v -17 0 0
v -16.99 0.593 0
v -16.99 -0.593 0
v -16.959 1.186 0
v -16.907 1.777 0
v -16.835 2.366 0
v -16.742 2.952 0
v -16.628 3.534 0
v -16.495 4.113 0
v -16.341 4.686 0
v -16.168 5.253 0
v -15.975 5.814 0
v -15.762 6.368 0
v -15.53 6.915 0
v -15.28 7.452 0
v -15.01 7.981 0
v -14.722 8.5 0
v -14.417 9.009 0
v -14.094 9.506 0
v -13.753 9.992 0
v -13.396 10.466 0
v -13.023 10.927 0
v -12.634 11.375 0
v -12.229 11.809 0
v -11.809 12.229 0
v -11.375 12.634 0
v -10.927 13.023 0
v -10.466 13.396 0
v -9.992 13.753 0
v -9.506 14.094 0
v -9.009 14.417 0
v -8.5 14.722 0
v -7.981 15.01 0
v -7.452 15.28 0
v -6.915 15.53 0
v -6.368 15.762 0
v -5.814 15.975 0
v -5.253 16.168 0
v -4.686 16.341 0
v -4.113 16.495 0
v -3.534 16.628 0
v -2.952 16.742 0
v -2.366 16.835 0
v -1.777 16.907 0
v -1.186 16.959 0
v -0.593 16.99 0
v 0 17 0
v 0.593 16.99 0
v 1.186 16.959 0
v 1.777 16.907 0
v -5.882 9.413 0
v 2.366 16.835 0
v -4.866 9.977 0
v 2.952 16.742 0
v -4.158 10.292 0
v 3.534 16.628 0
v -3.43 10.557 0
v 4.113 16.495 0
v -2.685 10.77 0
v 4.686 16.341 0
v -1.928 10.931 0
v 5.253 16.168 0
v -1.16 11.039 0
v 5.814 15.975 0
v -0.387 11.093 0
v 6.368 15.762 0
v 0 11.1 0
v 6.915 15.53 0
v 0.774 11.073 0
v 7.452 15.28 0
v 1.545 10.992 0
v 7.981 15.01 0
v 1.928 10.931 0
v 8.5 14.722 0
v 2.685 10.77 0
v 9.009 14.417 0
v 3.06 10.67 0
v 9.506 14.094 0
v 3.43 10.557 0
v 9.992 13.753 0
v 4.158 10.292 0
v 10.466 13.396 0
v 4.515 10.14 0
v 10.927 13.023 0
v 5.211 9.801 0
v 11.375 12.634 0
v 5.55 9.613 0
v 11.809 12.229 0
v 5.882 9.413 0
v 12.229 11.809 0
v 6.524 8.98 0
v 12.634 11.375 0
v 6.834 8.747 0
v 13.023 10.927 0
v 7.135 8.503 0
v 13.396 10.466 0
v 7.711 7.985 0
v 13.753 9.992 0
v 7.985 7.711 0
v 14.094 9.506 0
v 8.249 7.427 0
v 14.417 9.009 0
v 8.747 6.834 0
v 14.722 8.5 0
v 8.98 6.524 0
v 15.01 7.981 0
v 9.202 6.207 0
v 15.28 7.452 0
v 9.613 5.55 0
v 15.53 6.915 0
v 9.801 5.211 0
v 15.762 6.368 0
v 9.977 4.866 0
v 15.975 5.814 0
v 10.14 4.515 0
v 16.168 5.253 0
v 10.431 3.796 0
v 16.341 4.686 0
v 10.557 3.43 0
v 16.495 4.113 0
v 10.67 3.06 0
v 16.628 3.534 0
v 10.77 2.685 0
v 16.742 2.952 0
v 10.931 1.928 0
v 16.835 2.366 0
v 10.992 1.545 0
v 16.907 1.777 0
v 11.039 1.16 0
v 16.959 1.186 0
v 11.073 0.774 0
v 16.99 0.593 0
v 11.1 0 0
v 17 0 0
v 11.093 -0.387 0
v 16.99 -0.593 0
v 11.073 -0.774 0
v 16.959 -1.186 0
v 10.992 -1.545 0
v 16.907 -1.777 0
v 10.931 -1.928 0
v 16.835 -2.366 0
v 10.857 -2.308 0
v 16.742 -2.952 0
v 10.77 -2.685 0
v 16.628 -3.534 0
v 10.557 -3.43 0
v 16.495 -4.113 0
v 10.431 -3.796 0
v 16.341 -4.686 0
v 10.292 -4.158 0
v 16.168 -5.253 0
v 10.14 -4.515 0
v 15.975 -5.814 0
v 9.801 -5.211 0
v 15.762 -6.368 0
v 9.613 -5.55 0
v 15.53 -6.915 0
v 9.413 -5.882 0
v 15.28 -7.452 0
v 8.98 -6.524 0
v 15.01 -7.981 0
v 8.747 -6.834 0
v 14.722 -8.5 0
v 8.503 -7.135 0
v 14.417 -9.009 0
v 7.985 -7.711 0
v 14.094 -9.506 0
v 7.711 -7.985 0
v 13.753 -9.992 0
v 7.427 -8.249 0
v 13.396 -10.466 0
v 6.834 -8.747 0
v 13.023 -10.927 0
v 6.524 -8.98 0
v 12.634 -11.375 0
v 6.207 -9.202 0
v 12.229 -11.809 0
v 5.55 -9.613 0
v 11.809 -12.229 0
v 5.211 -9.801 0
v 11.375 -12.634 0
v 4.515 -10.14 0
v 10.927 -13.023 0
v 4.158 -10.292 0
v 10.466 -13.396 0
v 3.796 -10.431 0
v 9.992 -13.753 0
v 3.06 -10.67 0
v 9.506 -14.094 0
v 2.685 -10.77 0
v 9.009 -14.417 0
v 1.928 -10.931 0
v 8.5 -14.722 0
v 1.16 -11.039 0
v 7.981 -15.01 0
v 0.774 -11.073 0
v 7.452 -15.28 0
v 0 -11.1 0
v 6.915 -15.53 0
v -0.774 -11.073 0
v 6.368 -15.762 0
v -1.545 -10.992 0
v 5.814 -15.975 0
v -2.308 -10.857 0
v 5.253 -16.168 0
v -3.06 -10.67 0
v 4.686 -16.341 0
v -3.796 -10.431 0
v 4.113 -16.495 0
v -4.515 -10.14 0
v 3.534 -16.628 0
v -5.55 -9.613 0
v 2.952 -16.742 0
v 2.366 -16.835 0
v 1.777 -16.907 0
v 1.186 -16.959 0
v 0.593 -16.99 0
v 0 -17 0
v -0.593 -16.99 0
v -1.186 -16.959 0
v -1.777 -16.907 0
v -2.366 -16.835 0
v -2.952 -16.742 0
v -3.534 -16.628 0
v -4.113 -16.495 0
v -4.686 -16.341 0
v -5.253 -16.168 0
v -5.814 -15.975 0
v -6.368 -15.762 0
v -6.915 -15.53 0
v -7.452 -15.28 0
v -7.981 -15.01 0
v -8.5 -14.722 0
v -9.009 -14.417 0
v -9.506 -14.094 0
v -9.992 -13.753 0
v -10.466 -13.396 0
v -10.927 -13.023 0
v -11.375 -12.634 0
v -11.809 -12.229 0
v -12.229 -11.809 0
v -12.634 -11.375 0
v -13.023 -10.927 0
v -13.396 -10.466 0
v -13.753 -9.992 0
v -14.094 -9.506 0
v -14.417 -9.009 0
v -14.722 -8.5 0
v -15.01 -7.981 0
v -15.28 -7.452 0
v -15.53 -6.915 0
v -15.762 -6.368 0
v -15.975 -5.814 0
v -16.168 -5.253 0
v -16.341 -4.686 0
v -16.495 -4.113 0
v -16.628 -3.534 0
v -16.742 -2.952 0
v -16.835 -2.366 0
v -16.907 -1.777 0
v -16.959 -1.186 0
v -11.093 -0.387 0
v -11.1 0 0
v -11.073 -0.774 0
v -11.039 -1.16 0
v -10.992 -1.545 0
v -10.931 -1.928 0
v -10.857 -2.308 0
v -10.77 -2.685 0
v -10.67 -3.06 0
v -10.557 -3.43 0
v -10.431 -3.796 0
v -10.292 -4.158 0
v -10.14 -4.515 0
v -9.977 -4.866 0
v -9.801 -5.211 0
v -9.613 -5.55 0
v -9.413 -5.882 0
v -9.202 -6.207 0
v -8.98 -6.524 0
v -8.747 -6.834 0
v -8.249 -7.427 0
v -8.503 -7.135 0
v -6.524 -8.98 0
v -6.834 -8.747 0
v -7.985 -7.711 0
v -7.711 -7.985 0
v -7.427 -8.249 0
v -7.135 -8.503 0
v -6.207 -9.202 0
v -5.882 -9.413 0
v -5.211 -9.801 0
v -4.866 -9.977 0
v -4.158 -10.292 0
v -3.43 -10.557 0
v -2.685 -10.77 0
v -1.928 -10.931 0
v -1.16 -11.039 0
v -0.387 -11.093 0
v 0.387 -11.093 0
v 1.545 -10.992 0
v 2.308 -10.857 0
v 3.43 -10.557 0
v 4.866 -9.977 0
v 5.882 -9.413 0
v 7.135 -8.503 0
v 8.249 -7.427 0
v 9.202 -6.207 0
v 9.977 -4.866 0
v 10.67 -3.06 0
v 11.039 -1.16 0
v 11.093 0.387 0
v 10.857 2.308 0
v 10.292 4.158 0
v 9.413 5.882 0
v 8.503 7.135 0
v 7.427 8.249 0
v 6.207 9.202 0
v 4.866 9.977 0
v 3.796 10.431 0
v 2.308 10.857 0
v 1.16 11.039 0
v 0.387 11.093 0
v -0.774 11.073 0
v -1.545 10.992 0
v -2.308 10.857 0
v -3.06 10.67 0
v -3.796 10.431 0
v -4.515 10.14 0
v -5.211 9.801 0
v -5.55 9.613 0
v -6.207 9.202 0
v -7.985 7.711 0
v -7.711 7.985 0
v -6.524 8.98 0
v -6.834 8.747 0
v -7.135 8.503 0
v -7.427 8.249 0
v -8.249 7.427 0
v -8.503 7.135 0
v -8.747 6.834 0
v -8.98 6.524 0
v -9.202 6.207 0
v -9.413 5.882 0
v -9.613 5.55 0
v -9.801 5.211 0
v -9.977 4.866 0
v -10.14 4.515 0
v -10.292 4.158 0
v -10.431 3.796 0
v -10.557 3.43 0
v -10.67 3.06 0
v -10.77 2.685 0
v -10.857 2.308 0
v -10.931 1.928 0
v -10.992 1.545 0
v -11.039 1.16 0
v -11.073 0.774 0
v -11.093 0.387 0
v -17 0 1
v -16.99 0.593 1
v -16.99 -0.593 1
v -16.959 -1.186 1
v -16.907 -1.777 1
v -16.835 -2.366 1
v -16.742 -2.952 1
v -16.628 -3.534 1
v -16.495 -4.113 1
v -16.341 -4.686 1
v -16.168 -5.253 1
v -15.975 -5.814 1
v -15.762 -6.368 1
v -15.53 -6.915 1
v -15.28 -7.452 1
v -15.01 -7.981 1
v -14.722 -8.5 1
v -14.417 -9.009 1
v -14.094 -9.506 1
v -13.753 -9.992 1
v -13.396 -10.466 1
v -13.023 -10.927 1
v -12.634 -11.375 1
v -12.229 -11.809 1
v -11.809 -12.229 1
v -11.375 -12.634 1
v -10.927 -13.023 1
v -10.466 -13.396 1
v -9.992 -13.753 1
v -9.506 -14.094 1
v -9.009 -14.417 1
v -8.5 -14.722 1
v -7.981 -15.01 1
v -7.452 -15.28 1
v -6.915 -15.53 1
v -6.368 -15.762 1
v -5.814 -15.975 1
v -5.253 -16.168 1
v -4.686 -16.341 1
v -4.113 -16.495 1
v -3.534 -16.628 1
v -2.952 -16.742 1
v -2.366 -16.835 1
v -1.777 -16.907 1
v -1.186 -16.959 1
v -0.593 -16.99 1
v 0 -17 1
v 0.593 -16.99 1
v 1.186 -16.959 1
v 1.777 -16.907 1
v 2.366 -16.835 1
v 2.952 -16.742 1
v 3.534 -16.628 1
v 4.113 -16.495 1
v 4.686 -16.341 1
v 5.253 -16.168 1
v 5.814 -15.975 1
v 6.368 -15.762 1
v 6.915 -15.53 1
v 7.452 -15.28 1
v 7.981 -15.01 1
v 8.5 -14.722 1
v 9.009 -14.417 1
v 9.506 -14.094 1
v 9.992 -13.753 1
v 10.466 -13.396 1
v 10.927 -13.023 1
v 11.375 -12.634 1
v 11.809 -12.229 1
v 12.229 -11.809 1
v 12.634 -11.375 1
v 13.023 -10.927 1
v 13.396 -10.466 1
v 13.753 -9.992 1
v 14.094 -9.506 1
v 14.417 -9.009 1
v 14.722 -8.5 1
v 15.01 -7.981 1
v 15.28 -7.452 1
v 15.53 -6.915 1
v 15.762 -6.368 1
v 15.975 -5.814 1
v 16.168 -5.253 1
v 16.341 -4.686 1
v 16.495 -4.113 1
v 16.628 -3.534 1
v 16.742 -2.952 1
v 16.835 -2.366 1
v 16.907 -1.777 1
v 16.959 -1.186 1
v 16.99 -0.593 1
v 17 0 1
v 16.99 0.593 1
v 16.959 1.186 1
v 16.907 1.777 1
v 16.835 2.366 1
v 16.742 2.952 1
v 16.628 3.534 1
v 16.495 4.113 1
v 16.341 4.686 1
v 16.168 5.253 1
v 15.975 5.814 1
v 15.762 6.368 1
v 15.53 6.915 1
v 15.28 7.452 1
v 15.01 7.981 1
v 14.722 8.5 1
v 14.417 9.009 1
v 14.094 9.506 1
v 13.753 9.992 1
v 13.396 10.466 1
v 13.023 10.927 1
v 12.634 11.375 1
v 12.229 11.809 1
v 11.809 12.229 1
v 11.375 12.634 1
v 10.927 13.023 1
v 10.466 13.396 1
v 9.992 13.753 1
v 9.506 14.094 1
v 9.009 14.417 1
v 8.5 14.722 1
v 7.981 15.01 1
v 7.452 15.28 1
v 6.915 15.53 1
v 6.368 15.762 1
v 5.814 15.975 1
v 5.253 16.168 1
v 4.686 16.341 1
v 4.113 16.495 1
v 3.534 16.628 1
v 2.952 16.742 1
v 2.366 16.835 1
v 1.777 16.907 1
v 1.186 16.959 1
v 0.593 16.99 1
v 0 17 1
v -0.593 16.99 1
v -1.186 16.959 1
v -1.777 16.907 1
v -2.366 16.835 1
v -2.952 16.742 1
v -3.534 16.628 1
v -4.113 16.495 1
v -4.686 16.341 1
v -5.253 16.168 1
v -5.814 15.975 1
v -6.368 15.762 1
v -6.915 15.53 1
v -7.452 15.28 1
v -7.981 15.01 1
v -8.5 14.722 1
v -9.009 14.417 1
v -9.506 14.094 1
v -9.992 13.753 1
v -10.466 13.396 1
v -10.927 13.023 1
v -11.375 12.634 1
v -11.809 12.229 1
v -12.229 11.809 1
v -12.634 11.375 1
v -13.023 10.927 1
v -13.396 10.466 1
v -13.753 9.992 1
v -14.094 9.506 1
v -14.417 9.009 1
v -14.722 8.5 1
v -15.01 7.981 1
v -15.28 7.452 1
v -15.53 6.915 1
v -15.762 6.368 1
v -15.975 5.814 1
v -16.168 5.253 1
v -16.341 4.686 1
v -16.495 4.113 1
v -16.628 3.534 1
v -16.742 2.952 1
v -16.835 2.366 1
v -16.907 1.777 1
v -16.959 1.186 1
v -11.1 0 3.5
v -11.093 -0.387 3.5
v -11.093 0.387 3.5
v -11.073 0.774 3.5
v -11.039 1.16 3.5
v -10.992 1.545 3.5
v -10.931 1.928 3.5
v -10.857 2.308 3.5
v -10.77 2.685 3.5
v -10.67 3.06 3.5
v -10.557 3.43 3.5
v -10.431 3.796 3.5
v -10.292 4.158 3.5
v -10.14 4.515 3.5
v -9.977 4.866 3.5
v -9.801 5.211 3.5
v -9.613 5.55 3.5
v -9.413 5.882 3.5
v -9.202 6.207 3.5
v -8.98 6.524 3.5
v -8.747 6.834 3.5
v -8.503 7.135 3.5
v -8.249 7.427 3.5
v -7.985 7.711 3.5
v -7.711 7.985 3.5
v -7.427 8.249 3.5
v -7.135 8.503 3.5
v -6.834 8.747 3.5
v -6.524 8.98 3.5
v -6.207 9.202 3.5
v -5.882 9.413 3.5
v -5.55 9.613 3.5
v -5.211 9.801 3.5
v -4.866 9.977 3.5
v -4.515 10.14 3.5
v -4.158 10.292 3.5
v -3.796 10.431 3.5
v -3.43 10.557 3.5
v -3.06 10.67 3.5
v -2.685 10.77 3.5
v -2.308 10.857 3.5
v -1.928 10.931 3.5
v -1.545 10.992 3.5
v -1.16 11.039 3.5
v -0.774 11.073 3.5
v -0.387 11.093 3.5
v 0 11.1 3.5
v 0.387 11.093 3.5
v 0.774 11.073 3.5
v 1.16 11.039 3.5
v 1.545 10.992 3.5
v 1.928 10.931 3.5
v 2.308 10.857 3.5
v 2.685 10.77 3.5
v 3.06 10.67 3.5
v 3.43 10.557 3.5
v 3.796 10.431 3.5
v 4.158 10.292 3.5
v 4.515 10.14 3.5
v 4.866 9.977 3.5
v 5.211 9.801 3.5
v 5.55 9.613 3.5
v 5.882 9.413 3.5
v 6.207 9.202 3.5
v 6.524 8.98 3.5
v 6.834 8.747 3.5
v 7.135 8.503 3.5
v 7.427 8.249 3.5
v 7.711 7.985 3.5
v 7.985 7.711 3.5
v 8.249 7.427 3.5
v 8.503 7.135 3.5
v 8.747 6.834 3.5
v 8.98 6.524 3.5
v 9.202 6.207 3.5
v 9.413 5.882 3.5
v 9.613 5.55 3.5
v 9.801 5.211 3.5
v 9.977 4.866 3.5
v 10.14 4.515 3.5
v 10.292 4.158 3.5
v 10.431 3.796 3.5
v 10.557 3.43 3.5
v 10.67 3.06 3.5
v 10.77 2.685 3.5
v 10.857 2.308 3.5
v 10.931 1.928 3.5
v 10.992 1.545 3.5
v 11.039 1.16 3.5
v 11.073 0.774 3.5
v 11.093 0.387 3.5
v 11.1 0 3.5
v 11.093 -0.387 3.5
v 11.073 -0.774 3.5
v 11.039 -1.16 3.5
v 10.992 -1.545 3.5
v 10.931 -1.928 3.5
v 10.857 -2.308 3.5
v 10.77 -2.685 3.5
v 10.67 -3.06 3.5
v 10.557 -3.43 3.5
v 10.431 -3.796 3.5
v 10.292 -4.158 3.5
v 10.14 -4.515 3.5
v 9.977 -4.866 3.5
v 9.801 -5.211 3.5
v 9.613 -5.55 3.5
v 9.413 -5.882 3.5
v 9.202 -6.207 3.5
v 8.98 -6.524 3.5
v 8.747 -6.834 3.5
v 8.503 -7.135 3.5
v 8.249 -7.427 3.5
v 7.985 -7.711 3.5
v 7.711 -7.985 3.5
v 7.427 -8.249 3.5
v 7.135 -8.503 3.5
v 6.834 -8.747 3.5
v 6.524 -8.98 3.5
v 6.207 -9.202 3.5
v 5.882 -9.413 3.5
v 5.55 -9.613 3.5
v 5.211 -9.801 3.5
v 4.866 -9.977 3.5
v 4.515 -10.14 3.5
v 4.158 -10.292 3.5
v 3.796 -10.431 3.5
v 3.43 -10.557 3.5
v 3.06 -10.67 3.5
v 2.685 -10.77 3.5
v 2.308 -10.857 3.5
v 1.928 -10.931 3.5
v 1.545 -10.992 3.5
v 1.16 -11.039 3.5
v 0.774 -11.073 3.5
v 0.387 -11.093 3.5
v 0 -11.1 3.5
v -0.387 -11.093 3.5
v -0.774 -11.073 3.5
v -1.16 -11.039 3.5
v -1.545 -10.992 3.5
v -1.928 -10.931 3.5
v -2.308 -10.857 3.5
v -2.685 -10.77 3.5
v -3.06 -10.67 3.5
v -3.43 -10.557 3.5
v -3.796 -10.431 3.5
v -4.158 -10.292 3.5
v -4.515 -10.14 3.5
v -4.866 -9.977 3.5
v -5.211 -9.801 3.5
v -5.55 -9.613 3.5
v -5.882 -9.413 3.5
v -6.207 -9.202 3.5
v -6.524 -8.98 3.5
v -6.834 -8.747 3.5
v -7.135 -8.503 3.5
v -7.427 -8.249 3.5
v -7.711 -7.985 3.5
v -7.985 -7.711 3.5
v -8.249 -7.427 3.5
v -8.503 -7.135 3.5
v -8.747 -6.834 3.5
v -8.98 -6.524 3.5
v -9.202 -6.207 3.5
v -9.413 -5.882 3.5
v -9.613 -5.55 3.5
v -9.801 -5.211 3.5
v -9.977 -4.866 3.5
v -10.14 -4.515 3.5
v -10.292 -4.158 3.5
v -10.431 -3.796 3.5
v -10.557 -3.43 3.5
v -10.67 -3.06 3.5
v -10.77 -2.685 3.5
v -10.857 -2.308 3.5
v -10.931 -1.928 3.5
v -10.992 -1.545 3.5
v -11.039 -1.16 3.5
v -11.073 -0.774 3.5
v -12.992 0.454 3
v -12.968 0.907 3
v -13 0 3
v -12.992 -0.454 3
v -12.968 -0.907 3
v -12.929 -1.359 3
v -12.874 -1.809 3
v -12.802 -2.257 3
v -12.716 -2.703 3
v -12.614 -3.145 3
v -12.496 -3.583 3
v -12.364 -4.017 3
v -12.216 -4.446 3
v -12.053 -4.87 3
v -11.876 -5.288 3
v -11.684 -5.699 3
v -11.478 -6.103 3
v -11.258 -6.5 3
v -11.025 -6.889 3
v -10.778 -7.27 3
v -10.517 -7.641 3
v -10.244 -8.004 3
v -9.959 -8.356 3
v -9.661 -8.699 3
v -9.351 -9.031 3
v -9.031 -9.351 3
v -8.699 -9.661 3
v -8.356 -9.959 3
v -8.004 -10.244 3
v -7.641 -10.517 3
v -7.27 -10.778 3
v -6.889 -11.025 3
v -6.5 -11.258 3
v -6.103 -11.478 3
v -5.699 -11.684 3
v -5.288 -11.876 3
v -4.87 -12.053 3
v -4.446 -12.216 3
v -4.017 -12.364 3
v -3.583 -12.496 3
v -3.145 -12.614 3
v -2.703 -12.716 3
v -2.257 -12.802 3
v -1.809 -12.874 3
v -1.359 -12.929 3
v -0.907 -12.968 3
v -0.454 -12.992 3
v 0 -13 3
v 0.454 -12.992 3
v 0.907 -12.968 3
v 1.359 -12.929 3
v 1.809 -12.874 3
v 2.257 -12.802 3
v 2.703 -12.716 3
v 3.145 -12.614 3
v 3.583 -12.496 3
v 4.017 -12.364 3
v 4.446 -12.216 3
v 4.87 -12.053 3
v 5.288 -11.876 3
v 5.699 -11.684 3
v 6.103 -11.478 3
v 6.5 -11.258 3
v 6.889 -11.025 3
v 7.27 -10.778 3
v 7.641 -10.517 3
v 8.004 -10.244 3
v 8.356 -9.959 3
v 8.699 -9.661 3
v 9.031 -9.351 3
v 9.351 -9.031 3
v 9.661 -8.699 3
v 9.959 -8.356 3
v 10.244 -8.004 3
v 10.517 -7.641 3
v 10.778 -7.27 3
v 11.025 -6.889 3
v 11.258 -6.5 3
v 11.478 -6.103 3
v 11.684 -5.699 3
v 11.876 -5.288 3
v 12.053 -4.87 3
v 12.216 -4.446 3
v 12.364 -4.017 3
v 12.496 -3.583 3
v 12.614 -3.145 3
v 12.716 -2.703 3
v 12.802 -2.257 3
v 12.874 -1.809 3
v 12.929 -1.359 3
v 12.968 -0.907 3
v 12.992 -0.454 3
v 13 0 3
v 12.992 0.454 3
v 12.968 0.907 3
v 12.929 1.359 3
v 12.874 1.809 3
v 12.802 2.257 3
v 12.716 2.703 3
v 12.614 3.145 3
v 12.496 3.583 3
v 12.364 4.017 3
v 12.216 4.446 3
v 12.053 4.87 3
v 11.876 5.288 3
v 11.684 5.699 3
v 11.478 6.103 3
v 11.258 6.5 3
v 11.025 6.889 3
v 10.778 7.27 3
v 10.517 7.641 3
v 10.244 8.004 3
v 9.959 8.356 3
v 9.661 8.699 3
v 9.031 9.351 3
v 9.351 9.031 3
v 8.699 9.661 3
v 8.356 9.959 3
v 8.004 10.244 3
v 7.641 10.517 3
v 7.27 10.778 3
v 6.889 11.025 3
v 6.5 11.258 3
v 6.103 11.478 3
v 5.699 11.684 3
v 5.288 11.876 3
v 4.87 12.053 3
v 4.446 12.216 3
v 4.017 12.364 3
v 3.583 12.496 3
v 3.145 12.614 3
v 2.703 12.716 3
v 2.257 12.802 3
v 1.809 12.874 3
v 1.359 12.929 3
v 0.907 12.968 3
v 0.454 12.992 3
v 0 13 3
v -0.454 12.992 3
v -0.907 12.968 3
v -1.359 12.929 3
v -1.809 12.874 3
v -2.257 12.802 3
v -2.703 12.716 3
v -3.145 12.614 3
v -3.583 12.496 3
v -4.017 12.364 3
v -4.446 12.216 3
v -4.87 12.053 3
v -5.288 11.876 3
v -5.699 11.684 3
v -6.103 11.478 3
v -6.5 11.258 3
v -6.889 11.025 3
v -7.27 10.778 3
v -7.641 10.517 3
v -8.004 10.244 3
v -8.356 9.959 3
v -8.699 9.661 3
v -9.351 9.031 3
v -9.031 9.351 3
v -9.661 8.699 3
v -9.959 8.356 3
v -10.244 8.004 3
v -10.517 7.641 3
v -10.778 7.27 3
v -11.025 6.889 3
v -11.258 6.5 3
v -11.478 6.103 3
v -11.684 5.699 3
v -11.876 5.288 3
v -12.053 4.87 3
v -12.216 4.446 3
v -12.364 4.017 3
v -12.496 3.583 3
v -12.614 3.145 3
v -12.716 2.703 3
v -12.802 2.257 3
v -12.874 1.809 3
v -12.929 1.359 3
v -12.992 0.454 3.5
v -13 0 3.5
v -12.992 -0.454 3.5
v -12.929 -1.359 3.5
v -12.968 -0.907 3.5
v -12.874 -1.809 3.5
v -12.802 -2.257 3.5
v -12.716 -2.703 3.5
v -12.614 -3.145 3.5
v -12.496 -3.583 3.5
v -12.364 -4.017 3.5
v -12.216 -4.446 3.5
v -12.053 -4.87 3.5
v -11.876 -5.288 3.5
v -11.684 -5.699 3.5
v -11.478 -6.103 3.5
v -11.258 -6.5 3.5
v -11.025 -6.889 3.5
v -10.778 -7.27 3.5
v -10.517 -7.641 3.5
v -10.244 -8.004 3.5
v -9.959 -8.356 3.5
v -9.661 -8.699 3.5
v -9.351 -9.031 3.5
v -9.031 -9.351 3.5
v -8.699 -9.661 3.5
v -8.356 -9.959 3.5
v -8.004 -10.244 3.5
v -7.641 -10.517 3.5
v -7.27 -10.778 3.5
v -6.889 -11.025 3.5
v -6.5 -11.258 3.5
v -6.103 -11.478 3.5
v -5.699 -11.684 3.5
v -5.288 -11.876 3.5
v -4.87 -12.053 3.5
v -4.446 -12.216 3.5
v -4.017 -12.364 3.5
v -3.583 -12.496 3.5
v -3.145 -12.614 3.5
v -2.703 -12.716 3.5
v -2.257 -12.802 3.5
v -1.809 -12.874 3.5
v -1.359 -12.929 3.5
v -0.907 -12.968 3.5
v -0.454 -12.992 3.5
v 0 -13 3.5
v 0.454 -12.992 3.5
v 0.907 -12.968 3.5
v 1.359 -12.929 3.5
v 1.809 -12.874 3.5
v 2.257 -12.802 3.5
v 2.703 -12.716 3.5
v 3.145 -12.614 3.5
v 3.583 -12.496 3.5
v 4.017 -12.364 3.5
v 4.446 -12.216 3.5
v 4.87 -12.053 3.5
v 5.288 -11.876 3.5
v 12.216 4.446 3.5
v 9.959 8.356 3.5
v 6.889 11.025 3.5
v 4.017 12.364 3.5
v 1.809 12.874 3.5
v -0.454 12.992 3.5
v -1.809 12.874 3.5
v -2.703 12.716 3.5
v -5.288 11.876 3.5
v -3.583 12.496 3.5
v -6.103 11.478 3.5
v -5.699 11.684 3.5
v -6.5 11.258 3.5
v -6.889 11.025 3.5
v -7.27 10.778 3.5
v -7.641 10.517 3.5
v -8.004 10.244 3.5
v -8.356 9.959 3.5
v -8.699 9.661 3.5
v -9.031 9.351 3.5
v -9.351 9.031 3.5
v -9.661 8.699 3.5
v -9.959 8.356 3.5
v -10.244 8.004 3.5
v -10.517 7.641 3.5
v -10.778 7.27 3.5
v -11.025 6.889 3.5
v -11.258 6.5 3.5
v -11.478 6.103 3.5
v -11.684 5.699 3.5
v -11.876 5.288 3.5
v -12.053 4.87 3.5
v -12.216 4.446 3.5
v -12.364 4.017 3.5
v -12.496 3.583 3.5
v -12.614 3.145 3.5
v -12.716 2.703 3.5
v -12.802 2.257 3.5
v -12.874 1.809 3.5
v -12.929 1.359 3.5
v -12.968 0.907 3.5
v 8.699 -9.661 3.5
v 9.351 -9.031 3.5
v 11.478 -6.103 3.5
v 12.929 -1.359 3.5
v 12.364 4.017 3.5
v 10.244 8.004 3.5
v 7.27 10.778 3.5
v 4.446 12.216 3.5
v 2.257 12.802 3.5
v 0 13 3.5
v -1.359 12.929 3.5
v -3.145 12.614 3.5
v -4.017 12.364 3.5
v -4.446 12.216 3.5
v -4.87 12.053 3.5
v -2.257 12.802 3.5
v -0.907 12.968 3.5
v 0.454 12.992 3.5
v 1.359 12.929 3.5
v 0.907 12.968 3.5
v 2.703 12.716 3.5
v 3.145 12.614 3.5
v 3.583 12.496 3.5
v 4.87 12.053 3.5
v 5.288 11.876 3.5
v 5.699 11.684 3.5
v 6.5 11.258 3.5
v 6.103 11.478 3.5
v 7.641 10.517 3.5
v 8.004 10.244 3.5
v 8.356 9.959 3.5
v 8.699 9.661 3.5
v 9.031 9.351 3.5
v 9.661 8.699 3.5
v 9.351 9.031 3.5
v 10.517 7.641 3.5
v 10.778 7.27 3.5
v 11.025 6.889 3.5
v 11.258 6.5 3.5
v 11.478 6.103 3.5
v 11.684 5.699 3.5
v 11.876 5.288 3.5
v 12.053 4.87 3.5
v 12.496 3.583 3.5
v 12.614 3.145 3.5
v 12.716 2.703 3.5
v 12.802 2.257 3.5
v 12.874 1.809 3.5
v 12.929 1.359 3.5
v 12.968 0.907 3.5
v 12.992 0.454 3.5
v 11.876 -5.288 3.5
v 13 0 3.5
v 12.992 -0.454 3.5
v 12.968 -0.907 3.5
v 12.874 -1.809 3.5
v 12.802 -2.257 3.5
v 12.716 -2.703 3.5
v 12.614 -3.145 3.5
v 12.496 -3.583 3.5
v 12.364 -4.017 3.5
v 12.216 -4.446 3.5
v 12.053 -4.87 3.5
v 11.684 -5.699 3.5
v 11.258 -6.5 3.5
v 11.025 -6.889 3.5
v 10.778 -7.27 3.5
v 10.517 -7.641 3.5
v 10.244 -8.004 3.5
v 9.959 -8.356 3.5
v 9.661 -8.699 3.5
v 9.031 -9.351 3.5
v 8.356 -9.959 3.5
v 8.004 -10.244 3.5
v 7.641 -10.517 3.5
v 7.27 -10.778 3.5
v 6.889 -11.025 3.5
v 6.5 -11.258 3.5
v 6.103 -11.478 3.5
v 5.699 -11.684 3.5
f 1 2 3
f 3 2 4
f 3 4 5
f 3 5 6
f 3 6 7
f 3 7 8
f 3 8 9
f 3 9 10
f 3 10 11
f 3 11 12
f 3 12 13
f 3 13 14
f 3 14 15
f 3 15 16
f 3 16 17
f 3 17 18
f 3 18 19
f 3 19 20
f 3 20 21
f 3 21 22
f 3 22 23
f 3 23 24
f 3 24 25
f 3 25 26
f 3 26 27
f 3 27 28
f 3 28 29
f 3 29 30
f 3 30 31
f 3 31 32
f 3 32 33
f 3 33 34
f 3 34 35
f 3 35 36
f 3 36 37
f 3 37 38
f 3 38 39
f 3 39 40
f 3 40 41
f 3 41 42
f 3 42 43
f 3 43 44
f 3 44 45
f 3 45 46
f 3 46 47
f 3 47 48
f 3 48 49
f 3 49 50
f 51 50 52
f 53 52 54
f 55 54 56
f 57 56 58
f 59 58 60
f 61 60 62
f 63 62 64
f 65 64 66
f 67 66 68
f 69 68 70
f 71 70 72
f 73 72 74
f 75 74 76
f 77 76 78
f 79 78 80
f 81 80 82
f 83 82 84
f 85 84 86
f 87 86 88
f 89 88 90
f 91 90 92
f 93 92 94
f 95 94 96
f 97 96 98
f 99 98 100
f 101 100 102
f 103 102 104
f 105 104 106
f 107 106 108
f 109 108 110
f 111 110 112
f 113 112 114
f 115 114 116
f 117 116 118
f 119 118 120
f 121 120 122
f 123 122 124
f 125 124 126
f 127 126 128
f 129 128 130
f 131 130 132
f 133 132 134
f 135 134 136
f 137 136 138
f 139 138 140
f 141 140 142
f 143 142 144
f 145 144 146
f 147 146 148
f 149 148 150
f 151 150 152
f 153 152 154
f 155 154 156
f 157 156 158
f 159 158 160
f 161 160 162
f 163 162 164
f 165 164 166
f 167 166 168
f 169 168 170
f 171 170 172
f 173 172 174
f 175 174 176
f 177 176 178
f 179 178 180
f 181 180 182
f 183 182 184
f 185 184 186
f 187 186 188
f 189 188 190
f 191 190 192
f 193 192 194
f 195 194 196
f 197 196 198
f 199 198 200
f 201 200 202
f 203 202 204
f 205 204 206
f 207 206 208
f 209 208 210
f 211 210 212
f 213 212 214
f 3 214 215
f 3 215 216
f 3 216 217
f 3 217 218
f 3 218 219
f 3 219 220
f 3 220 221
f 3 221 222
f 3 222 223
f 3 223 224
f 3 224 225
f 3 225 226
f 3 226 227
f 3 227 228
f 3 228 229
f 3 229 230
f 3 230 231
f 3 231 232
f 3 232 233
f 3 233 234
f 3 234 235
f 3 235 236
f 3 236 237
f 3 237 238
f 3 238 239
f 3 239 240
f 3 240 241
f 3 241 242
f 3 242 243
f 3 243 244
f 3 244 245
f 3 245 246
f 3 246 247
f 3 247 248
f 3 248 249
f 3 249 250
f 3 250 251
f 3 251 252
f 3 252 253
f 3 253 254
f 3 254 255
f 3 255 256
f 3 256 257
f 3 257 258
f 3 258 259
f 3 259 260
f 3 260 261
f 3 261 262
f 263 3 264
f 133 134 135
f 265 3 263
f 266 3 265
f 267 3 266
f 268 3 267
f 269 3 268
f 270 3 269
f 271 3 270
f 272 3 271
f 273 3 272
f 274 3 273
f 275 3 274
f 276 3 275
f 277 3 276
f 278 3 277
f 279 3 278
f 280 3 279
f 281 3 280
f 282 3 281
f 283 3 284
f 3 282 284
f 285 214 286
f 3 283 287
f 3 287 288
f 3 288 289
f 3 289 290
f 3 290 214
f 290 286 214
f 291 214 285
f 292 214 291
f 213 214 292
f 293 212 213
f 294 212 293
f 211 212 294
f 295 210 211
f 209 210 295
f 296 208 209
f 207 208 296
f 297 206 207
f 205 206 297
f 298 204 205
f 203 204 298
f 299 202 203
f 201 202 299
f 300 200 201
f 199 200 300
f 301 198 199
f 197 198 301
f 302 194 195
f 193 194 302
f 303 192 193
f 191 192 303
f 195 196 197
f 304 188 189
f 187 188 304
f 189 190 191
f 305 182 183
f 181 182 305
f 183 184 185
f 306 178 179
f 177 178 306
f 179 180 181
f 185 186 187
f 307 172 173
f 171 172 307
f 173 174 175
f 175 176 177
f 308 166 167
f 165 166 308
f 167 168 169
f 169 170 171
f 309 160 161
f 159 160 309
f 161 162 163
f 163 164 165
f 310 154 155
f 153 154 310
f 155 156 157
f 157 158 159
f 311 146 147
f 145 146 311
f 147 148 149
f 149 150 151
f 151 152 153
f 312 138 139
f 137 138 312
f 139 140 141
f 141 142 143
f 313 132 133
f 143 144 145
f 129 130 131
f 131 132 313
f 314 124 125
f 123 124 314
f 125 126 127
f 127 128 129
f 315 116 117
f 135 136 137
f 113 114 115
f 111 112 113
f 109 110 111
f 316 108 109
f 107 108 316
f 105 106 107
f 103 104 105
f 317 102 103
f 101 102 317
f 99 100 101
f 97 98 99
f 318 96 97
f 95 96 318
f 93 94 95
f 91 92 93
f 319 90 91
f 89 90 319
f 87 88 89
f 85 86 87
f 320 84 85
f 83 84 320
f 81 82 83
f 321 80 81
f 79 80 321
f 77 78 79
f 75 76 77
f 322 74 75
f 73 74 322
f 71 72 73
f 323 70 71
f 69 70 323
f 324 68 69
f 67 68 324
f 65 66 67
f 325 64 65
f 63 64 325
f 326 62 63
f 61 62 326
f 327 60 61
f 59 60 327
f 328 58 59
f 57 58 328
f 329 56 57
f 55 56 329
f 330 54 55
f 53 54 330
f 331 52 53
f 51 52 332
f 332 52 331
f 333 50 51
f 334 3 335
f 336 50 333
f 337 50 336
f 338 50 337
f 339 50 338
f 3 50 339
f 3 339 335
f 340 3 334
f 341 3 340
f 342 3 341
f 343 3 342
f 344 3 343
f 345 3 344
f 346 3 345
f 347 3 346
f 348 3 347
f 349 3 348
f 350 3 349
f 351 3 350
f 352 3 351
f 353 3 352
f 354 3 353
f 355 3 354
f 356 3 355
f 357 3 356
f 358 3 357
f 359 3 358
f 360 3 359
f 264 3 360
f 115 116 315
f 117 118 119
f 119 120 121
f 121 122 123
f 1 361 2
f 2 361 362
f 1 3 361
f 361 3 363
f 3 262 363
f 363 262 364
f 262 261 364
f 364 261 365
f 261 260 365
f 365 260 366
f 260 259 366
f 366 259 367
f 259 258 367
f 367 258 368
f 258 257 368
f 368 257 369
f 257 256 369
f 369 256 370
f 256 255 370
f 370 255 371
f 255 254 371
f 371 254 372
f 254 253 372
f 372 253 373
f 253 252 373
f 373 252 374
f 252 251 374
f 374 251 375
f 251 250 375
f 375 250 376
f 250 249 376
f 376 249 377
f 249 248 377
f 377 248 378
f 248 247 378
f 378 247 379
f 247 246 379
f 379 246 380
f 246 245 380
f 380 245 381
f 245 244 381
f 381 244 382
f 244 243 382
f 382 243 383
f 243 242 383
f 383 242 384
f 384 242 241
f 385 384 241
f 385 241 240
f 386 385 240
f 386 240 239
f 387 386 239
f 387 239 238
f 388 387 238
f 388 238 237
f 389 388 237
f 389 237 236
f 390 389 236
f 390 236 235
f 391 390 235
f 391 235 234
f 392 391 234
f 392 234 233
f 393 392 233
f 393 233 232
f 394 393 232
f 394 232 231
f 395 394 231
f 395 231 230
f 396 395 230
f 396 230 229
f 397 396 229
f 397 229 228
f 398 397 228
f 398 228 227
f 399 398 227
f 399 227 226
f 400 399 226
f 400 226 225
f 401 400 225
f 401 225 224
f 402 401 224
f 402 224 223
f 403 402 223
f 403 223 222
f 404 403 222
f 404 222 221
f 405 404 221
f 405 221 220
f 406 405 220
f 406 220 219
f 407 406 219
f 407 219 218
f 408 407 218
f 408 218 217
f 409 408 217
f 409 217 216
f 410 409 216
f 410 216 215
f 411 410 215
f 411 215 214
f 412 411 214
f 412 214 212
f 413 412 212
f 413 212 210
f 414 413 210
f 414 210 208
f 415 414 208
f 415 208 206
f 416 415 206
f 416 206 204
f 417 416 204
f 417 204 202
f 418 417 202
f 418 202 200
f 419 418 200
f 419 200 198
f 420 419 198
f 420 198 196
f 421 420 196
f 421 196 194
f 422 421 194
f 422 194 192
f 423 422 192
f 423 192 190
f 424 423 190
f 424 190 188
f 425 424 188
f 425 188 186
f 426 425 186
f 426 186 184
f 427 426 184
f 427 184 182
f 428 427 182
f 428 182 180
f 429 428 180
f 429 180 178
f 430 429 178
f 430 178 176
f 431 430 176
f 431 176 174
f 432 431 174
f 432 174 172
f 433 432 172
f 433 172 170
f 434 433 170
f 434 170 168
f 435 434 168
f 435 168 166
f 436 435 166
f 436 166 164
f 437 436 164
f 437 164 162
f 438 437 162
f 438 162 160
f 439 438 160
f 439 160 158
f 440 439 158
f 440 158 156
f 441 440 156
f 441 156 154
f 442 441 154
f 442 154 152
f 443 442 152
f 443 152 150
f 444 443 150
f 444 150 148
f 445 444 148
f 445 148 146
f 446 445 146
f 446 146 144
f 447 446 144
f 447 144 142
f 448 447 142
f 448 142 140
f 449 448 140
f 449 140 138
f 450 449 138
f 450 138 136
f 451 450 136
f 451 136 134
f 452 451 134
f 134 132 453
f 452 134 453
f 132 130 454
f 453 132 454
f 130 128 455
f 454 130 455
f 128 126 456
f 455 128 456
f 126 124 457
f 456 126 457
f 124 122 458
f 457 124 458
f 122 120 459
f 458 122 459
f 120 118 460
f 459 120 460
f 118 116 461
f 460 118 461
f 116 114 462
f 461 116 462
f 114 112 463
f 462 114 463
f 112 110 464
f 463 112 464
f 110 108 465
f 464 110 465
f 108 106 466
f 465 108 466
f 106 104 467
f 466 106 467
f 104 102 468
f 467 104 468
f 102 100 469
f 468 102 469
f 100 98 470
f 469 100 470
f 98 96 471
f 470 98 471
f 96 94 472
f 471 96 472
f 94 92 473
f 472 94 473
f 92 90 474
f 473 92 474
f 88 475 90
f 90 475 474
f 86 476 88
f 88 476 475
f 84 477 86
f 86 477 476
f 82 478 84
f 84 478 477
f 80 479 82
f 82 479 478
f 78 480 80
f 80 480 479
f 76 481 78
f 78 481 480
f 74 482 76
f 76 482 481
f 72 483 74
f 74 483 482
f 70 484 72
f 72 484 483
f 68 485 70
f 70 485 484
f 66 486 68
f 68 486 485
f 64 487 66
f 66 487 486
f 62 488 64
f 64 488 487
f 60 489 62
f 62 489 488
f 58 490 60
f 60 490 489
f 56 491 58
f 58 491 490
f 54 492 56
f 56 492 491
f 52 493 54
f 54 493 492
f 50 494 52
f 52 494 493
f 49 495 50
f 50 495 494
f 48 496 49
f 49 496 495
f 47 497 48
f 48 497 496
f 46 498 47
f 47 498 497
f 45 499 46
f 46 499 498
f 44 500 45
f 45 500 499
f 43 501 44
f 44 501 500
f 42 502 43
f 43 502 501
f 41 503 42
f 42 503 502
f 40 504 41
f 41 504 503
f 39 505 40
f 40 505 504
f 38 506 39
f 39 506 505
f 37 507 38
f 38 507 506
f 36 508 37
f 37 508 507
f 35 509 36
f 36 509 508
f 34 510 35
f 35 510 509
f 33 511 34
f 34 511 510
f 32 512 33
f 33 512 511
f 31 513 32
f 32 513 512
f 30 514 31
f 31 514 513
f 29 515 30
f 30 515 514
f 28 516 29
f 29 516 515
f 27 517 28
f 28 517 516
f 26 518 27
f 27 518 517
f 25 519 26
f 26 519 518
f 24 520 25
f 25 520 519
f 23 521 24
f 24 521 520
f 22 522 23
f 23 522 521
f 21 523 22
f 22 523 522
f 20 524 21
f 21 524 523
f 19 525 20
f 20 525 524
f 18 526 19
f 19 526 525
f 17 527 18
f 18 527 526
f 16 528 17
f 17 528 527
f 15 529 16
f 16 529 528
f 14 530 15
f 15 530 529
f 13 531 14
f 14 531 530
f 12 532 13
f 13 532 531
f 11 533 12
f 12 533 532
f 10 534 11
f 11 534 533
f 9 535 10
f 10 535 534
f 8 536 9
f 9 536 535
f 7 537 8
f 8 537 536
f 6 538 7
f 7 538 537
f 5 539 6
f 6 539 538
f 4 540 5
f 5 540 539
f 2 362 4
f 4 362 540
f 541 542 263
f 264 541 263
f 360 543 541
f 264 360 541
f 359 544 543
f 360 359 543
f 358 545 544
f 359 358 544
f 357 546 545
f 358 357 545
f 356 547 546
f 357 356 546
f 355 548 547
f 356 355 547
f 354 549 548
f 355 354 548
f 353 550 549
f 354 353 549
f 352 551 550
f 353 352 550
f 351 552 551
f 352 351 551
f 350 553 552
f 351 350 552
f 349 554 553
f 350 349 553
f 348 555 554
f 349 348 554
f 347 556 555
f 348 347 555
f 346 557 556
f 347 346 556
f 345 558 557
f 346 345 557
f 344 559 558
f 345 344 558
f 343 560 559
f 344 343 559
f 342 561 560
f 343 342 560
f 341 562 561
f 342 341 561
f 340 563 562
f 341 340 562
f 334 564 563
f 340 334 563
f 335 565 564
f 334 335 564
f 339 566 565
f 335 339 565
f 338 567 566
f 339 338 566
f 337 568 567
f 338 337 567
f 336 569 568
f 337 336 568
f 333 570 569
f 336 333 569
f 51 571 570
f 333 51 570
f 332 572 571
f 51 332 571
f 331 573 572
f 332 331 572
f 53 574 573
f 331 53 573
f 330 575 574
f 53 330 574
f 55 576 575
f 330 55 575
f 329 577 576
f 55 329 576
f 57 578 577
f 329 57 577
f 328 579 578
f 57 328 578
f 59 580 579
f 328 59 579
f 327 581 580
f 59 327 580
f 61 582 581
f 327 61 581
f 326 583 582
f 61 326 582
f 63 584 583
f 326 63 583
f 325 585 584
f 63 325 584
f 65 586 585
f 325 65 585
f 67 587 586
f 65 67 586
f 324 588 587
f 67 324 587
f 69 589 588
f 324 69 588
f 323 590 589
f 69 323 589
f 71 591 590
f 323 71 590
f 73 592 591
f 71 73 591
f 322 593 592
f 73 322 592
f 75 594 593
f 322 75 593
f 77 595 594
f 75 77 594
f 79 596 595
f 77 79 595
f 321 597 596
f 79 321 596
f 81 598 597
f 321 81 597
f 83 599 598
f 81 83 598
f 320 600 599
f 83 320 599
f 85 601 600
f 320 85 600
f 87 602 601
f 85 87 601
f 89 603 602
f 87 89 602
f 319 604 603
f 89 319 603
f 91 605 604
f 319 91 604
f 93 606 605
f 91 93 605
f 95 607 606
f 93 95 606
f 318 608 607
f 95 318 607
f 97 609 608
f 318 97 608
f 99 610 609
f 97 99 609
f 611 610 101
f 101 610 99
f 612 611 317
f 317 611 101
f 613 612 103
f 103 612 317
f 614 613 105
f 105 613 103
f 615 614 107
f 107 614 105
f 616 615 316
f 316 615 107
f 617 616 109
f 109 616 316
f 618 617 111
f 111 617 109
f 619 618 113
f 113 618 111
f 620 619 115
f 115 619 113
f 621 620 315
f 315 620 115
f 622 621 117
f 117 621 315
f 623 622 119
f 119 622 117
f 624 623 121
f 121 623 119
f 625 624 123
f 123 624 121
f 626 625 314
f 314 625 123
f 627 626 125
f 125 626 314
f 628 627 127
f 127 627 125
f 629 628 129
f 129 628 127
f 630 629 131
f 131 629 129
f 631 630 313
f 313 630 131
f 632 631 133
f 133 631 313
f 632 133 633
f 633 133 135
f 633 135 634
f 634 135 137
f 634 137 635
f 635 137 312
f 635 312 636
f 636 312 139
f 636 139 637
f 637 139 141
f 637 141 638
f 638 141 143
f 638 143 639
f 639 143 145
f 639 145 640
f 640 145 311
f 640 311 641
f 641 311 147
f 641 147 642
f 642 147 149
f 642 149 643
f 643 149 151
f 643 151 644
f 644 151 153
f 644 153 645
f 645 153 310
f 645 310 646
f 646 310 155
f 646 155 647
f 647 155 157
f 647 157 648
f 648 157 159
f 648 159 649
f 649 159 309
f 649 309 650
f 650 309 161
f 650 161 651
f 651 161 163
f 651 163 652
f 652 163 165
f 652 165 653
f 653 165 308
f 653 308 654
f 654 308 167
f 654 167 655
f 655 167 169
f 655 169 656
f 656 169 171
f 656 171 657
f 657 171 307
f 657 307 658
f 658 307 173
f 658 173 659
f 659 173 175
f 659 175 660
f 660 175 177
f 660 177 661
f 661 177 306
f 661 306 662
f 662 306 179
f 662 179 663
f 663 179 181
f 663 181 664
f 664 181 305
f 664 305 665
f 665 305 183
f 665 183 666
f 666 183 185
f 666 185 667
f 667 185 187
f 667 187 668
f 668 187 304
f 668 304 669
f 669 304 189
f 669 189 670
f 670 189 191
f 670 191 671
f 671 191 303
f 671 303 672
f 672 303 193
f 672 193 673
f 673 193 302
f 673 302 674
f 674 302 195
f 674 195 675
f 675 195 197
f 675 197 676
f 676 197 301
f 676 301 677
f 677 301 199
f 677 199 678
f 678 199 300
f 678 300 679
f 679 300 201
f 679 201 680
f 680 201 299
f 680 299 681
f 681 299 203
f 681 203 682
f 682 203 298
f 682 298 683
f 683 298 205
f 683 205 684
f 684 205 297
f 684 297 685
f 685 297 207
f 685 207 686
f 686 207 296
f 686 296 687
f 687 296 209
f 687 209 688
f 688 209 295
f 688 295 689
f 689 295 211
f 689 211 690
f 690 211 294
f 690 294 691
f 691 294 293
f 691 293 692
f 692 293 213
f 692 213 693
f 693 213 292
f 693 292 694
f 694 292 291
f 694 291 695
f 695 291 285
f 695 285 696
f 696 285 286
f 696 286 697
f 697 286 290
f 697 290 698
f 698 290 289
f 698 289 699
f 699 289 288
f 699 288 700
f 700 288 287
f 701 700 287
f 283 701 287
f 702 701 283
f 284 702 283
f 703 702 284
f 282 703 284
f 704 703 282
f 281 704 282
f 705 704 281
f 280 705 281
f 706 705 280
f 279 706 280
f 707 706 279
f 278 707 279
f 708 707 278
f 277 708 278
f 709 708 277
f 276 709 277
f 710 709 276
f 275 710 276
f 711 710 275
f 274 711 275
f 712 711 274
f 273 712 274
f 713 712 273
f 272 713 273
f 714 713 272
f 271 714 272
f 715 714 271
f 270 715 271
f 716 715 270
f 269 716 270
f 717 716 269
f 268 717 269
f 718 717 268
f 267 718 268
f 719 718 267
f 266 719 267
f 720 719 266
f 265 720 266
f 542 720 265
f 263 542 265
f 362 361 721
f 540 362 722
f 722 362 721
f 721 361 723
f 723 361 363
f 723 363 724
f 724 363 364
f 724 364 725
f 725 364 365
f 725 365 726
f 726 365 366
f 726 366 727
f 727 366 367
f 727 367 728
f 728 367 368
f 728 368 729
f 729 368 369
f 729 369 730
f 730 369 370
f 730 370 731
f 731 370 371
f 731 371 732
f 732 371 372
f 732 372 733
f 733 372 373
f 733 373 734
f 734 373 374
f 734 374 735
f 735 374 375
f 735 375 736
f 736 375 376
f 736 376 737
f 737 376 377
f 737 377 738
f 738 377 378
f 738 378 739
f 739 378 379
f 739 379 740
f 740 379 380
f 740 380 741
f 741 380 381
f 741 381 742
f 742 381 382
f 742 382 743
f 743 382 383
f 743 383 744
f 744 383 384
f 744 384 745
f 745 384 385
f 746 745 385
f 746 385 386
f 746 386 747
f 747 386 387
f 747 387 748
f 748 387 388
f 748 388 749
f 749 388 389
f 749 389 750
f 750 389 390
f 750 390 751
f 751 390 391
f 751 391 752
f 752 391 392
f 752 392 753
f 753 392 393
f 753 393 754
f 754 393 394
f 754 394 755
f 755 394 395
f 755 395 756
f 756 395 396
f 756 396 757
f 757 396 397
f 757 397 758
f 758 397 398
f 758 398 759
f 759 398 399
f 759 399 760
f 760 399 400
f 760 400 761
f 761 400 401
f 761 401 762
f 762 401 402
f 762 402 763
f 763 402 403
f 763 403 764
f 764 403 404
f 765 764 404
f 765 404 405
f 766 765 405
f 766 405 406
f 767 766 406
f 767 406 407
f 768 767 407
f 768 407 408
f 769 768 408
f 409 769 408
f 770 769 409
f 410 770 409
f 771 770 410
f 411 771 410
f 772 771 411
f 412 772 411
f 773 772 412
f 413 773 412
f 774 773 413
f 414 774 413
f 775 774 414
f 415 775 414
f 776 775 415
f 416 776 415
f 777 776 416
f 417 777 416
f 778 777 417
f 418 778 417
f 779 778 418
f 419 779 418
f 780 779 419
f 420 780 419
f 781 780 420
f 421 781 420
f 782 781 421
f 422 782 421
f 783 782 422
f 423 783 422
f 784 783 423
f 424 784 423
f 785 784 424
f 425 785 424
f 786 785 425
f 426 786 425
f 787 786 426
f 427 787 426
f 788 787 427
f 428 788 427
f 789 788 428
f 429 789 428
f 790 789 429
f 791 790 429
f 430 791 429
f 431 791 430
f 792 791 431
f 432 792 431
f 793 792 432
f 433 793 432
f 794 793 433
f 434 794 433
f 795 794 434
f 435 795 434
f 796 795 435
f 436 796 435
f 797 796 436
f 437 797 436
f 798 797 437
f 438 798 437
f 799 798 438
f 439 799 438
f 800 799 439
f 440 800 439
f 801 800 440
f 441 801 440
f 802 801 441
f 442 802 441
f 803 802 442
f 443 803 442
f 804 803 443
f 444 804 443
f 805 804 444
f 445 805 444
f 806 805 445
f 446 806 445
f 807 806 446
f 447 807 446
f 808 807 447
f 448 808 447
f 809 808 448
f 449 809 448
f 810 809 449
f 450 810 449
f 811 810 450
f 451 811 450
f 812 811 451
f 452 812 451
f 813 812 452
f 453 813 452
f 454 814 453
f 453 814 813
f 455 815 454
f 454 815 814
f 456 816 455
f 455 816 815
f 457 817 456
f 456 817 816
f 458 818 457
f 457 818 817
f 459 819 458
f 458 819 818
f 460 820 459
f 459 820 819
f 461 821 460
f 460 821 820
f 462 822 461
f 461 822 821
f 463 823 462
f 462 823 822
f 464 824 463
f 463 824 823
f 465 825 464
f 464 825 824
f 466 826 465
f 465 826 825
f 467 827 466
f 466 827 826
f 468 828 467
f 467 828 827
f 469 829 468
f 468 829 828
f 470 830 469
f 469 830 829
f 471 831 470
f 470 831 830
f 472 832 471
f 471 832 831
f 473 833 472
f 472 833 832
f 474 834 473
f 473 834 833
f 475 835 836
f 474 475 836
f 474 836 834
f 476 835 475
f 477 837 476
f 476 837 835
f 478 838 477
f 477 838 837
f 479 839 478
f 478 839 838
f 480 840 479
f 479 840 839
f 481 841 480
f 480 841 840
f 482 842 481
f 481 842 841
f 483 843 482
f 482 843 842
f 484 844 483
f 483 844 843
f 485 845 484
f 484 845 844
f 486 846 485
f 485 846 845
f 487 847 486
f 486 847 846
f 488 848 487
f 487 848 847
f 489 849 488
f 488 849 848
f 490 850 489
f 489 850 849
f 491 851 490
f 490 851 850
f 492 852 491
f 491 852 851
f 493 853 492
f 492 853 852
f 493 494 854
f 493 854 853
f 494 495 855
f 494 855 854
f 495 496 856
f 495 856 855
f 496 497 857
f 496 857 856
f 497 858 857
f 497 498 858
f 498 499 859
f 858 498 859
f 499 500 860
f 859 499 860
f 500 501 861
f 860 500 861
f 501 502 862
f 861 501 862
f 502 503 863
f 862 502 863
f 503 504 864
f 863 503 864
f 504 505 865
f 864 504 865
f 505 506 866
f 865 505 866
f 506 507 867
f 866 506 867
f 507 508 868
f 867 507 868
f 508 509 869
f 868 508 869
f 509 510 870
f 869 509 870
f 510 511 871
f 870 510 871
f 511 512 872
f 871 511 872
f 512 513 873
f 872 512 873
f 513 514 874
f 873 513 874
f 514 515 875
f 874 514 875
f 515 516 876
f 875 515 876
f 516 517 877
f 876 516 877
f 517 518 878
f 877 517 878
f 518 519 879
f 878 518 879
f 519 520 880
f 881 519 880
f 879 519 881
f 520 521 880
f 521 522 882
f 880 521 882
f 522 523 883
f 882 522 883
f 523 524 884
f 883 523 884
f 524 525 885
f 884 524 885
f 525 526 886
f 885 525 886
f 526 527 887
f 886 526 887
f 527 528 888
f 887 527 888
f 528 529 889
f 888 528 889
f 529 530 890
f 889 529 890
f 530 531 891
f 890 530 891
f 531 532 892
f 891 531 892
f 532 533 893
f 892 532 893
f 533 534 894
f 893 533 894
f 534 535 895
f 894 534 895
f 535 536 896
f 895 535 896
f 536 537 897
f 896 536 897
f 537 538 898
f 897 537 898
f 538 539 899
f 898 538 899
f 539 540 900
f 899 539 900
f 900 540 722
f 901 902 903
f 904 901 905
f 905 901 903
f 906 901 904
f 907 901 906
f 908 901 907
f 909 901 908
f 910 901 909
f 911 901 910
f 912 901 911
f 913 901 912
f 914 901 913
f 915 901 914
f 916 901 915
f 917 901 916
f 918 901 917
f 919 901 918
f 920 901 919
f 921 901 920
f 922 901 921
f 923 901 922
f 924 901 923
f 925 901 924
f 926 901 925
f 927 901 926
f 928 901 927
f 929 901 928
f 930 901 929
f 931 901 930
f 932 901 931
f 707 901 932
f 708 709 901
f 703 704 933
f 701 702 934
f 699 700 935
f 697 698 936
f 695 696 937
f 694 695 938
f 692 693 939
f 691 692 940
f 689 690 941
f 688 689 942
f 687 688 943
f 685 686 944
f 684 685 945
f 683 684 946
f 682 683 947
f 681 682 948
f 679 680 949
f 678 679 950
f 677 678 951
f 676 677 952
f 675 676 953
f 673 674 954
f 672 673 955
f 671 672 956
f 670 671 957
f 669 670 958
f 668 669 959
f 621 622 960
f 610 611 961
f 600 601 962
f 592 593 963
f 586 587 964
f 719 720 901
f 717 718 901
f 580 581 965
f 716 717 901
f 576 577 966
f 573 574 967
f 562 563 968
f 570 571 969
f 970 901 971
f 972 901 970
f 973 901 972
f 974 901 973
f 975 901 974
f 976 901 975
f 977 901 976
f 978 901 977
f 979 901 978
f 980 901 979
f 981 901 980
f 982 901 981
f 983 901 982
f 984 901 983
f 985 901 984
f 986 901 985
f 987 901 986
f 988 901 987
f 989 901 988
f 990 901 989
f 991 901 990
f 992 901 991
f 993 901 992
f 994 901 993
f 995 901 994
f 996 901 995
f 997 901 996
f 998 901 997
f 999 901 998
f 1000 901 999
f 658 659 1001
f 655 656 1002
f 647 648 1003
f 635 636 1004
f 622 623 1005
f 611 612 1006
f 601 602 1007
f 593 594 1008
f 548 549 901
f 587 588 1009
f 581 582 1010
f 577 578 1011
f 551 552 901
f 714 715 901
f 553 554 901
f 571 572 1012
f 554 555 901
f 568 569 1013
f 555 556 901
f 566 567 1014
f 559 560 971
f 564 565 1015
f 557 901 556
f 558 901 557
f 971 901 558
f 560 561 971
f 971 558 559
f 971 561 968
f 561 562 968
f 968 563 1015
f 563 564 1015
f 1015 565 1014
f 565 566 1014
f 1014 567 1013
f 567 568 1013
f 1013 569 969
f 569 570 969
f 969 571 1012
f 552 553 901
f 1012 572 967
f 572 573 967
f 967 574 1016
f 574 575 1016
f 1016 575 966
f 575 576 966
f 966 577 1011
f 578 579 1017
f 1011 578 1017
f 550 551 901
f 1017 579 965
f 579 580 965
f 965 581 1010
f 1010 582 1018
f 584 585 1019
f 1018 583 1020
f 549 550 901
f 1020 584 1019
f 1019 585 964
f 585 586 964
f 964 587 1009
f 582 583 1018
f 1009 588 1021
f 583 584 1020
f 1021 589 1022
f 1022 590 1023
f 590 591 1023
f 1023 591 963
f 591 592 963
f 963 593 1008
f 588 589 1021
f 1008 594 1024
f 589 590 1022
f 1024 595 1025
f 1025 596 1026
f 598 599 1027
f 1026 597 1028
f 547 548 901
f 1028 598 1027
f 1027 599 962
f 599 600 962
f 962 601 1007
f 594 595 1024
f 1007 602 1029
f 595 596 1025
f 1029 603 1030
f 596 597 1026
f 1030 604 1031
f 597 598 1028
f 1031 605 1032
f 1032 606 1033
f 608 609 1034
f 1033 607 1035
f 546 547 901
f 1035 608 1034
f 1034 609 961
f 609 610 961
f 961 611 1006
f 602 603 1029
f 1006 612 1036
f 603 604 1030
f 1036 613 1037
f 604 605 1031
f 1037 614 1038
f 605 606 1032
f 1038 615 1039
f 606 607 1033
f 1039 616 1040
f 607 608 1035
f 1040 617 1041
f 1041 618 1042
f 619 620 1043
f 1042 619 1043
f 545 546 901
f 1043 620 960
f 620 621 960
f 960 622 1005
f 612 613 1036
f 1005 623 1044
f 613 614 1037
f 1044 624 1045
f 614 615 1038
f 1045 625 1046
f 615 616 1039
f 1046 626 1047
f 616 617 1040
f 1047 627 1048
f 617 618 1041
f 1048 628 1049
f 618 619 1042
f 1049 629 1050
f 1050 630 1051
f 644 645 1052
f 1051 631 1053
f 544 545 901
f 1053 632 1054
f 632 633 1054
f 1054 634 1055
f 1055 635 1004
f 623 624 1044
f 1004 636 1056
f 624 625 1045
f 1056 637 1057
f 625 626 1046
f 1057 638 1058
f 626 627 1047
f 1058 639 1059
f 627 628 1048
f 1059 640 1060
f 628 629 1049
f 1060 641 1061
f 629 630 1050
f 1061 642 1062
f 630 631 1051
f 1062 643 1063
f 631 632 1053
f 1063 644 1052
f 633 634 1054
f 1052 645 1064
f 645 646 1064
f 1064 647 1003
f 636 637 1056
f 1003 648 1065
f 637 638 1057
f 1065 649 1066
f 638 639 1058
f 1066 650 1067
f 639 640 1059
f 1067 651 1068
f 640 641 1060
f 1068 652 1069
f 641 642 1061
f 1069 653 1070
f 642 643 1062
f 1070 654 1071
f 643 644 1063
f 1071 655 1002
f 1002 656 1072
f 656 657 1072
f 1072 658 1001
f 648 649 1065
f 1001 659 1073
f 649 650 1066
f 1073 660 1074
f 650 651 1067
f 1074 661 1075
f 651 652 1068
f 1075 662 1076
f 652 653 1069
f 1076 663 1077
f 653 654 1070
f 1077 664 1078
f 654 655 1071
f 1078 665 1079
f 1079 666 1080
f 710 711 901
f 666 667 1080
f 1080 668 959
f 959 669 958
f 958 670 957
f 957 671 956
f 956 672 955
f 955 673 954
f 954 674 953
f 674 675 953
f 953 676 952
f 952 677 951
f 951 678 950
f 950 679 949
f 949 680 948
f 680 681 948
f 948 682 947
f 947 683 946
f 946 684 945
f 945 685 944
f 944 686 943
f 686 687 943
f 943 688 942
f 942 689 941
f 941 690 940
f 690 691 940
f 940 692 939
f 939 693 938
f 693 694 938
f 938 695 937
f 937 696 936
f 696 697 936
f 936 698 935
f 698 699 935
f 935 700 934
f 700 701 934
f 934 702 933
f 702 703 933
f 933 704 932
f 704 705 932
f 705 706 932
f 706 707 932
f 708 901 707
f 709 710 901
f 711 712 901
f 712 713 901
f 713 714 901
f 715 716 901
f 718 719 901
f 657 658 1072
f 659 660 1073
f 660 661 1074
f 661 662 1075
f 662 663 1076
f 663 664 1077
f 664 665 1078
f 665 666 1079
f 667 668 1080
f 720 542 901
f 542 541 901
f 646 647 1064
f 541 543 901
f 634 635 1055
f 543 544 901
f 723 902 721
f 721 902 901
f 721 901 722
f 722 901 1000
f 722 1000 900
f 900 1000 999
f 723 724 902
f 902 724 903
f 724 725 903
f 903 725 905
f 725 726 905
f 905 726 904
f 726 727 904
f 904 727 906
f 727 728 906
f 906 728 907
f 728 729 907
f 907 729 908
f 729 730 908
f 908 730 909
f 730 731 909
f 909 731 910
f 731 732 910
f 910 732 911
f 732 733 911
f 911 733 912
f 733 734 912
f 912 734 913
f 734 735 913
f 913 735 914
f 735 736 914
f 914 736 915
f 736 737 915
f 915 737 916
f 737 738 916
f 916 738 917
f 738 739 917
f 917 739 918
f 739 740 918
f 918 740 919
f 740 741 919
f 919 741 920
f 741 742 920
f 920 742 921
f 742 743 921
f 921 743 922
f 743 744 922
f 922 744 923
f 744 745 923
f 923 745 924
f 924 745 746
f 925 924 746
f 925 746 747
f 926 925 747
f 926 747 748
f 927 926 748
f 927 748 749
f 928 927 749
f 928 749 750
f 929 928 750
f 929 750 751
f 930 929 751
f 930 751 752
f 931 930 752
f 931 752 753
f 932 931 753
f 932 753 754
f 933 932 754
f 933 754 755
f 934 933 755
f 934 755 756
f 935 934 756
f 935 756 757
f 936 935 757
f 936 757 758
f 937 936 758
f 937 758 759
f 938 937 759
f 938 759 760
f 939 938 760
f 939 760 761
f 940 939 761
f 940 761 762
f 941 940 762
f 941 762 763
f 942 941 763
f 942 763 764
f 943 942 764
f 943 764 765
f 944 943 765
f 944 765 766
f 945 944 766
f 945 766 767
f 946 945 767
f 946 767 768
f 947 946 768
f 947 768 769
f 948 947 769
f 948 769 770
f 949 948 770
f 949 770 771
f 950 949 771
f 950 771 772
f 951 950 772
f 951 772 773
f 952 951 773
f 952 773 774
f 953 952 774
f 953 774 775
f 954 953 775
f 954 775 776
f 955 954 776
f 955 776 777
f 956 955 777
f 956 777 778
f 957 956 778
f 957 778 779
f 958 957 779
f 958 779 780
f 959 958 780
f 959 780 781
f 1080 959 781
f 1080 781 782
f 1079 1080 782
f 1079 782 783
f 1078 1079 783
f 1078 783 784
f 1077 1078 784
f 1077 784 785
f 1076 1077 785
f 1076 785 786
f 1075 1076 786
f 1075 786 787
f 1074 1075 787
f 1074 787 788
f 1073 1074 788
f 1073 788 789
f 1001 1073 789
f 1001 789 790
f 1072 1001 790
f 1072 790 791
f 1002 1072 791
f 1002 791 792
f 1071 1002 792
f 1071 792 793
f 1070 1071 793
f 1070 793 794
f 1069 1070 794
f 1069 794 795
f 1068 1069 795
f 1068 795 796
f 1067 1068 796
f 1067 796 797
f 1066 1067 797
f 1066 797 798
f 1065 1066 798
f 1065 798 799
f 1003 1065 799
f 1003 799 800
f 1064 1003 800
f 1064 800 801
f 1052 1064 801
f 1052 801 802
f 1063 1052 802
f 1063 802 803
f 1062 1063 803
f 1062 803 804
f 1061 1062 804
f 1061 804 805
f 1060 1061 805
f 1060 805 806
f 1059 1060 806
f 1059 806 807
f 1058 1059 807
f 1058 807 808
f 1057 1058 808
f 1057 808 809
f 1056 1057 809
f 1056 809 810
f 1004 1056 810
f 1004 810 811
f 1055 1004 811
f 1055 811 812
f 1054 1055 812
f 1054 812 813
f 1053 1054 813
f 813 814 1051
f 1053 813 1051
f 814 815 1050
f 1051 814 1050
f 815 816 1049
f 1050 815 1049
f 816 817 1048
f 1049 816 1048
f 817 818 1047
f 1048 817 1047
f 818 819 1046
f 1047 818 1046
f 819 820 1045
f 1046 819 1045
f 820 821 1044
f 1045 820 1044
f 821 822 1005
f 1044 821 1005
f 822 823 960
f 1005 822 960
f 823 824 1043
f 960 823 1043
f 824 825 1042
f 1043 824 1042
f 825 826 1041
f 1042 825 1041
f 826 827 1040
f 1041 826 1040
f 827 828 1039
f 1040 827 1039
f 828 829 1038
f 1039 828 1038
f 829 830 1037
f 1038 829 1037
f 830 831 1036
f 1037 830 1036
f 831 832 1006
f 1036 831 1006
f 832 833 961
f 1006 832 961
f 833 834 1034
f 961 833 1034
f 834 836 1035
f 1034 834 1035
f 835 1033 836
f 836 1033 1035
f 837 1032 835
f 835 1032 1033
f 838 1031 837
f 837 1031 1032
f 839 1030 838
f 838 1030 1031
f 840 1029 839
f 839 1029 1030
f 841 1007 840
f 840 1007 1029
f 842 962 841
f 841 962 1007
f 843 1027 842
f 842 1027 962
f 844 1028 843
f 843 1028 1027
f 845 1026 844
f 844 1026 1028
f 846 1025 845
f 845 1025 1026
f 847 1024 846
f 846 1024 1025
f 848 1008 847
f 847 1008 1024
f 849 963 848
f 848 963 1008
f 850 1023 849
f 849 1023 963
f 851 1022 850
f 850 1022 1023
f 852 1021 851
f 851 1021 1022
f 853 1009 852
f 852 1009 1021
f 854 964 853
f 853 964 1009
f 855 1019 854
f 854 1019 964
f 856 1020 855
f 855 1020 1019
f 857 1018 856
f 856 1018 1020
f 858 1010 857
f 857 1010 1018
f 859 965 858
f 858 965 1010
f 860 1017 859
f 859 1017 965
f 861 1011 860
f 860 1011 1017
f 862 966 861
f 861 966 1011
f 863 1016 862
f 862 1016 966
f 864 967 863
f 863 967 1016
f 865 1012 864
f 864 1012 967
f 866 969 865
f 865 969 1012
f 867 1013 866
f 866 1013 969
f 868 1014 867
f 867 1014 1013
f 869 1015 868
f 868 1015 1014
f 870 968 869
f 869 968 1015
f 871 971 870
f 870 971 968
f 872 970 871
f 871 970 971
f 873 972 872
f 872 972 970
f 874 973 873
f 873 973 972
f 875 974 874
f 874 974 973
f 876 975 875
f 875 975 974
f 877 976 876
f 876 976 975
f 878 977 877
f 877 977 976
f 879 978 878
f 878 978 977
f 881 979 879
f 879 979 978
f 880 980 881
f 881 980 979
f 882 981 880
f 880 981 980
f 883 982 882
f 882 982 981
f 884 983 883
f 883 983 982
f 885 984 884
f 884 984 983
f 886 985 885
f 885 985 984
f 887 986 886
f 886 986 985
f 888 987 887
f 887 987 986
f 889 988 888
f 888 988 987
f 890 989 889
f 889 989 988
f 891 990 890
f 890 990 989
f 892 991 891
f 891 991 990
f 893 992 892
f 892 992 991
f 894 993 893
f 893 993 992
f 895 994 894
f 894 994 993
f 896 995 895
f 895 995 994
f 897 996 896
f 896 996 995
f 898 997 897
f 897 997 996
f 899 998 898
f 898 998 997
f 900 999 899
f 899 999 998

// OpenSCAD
// Pulley zip line
//
// Derivative of: http://www.thingiverse.com/thing:391146
//
// Have to print 2 for complete pulley
// Designed to fit a 7mm wide bearing
//
// Outer diameter of the bearing
// Maximum Value: 26
Rod = 22;
// ABS shrinkage factor upon cooling
Contr = 0.1;

Diametro = Rod / 2 + Contr ;

$fn=180;
difference() {
union() {
  cylinder(h=1, r=17);
  translate([0,0,1]) {
    cylinder(h=2, r1=17, r2=13);
  }
  translate([0,0,3]) {
    cylinder(h=0.5, r=13);
  }
}
translate([0,0,-0.01]) cylinder(h=10, r=Diametro);
}
